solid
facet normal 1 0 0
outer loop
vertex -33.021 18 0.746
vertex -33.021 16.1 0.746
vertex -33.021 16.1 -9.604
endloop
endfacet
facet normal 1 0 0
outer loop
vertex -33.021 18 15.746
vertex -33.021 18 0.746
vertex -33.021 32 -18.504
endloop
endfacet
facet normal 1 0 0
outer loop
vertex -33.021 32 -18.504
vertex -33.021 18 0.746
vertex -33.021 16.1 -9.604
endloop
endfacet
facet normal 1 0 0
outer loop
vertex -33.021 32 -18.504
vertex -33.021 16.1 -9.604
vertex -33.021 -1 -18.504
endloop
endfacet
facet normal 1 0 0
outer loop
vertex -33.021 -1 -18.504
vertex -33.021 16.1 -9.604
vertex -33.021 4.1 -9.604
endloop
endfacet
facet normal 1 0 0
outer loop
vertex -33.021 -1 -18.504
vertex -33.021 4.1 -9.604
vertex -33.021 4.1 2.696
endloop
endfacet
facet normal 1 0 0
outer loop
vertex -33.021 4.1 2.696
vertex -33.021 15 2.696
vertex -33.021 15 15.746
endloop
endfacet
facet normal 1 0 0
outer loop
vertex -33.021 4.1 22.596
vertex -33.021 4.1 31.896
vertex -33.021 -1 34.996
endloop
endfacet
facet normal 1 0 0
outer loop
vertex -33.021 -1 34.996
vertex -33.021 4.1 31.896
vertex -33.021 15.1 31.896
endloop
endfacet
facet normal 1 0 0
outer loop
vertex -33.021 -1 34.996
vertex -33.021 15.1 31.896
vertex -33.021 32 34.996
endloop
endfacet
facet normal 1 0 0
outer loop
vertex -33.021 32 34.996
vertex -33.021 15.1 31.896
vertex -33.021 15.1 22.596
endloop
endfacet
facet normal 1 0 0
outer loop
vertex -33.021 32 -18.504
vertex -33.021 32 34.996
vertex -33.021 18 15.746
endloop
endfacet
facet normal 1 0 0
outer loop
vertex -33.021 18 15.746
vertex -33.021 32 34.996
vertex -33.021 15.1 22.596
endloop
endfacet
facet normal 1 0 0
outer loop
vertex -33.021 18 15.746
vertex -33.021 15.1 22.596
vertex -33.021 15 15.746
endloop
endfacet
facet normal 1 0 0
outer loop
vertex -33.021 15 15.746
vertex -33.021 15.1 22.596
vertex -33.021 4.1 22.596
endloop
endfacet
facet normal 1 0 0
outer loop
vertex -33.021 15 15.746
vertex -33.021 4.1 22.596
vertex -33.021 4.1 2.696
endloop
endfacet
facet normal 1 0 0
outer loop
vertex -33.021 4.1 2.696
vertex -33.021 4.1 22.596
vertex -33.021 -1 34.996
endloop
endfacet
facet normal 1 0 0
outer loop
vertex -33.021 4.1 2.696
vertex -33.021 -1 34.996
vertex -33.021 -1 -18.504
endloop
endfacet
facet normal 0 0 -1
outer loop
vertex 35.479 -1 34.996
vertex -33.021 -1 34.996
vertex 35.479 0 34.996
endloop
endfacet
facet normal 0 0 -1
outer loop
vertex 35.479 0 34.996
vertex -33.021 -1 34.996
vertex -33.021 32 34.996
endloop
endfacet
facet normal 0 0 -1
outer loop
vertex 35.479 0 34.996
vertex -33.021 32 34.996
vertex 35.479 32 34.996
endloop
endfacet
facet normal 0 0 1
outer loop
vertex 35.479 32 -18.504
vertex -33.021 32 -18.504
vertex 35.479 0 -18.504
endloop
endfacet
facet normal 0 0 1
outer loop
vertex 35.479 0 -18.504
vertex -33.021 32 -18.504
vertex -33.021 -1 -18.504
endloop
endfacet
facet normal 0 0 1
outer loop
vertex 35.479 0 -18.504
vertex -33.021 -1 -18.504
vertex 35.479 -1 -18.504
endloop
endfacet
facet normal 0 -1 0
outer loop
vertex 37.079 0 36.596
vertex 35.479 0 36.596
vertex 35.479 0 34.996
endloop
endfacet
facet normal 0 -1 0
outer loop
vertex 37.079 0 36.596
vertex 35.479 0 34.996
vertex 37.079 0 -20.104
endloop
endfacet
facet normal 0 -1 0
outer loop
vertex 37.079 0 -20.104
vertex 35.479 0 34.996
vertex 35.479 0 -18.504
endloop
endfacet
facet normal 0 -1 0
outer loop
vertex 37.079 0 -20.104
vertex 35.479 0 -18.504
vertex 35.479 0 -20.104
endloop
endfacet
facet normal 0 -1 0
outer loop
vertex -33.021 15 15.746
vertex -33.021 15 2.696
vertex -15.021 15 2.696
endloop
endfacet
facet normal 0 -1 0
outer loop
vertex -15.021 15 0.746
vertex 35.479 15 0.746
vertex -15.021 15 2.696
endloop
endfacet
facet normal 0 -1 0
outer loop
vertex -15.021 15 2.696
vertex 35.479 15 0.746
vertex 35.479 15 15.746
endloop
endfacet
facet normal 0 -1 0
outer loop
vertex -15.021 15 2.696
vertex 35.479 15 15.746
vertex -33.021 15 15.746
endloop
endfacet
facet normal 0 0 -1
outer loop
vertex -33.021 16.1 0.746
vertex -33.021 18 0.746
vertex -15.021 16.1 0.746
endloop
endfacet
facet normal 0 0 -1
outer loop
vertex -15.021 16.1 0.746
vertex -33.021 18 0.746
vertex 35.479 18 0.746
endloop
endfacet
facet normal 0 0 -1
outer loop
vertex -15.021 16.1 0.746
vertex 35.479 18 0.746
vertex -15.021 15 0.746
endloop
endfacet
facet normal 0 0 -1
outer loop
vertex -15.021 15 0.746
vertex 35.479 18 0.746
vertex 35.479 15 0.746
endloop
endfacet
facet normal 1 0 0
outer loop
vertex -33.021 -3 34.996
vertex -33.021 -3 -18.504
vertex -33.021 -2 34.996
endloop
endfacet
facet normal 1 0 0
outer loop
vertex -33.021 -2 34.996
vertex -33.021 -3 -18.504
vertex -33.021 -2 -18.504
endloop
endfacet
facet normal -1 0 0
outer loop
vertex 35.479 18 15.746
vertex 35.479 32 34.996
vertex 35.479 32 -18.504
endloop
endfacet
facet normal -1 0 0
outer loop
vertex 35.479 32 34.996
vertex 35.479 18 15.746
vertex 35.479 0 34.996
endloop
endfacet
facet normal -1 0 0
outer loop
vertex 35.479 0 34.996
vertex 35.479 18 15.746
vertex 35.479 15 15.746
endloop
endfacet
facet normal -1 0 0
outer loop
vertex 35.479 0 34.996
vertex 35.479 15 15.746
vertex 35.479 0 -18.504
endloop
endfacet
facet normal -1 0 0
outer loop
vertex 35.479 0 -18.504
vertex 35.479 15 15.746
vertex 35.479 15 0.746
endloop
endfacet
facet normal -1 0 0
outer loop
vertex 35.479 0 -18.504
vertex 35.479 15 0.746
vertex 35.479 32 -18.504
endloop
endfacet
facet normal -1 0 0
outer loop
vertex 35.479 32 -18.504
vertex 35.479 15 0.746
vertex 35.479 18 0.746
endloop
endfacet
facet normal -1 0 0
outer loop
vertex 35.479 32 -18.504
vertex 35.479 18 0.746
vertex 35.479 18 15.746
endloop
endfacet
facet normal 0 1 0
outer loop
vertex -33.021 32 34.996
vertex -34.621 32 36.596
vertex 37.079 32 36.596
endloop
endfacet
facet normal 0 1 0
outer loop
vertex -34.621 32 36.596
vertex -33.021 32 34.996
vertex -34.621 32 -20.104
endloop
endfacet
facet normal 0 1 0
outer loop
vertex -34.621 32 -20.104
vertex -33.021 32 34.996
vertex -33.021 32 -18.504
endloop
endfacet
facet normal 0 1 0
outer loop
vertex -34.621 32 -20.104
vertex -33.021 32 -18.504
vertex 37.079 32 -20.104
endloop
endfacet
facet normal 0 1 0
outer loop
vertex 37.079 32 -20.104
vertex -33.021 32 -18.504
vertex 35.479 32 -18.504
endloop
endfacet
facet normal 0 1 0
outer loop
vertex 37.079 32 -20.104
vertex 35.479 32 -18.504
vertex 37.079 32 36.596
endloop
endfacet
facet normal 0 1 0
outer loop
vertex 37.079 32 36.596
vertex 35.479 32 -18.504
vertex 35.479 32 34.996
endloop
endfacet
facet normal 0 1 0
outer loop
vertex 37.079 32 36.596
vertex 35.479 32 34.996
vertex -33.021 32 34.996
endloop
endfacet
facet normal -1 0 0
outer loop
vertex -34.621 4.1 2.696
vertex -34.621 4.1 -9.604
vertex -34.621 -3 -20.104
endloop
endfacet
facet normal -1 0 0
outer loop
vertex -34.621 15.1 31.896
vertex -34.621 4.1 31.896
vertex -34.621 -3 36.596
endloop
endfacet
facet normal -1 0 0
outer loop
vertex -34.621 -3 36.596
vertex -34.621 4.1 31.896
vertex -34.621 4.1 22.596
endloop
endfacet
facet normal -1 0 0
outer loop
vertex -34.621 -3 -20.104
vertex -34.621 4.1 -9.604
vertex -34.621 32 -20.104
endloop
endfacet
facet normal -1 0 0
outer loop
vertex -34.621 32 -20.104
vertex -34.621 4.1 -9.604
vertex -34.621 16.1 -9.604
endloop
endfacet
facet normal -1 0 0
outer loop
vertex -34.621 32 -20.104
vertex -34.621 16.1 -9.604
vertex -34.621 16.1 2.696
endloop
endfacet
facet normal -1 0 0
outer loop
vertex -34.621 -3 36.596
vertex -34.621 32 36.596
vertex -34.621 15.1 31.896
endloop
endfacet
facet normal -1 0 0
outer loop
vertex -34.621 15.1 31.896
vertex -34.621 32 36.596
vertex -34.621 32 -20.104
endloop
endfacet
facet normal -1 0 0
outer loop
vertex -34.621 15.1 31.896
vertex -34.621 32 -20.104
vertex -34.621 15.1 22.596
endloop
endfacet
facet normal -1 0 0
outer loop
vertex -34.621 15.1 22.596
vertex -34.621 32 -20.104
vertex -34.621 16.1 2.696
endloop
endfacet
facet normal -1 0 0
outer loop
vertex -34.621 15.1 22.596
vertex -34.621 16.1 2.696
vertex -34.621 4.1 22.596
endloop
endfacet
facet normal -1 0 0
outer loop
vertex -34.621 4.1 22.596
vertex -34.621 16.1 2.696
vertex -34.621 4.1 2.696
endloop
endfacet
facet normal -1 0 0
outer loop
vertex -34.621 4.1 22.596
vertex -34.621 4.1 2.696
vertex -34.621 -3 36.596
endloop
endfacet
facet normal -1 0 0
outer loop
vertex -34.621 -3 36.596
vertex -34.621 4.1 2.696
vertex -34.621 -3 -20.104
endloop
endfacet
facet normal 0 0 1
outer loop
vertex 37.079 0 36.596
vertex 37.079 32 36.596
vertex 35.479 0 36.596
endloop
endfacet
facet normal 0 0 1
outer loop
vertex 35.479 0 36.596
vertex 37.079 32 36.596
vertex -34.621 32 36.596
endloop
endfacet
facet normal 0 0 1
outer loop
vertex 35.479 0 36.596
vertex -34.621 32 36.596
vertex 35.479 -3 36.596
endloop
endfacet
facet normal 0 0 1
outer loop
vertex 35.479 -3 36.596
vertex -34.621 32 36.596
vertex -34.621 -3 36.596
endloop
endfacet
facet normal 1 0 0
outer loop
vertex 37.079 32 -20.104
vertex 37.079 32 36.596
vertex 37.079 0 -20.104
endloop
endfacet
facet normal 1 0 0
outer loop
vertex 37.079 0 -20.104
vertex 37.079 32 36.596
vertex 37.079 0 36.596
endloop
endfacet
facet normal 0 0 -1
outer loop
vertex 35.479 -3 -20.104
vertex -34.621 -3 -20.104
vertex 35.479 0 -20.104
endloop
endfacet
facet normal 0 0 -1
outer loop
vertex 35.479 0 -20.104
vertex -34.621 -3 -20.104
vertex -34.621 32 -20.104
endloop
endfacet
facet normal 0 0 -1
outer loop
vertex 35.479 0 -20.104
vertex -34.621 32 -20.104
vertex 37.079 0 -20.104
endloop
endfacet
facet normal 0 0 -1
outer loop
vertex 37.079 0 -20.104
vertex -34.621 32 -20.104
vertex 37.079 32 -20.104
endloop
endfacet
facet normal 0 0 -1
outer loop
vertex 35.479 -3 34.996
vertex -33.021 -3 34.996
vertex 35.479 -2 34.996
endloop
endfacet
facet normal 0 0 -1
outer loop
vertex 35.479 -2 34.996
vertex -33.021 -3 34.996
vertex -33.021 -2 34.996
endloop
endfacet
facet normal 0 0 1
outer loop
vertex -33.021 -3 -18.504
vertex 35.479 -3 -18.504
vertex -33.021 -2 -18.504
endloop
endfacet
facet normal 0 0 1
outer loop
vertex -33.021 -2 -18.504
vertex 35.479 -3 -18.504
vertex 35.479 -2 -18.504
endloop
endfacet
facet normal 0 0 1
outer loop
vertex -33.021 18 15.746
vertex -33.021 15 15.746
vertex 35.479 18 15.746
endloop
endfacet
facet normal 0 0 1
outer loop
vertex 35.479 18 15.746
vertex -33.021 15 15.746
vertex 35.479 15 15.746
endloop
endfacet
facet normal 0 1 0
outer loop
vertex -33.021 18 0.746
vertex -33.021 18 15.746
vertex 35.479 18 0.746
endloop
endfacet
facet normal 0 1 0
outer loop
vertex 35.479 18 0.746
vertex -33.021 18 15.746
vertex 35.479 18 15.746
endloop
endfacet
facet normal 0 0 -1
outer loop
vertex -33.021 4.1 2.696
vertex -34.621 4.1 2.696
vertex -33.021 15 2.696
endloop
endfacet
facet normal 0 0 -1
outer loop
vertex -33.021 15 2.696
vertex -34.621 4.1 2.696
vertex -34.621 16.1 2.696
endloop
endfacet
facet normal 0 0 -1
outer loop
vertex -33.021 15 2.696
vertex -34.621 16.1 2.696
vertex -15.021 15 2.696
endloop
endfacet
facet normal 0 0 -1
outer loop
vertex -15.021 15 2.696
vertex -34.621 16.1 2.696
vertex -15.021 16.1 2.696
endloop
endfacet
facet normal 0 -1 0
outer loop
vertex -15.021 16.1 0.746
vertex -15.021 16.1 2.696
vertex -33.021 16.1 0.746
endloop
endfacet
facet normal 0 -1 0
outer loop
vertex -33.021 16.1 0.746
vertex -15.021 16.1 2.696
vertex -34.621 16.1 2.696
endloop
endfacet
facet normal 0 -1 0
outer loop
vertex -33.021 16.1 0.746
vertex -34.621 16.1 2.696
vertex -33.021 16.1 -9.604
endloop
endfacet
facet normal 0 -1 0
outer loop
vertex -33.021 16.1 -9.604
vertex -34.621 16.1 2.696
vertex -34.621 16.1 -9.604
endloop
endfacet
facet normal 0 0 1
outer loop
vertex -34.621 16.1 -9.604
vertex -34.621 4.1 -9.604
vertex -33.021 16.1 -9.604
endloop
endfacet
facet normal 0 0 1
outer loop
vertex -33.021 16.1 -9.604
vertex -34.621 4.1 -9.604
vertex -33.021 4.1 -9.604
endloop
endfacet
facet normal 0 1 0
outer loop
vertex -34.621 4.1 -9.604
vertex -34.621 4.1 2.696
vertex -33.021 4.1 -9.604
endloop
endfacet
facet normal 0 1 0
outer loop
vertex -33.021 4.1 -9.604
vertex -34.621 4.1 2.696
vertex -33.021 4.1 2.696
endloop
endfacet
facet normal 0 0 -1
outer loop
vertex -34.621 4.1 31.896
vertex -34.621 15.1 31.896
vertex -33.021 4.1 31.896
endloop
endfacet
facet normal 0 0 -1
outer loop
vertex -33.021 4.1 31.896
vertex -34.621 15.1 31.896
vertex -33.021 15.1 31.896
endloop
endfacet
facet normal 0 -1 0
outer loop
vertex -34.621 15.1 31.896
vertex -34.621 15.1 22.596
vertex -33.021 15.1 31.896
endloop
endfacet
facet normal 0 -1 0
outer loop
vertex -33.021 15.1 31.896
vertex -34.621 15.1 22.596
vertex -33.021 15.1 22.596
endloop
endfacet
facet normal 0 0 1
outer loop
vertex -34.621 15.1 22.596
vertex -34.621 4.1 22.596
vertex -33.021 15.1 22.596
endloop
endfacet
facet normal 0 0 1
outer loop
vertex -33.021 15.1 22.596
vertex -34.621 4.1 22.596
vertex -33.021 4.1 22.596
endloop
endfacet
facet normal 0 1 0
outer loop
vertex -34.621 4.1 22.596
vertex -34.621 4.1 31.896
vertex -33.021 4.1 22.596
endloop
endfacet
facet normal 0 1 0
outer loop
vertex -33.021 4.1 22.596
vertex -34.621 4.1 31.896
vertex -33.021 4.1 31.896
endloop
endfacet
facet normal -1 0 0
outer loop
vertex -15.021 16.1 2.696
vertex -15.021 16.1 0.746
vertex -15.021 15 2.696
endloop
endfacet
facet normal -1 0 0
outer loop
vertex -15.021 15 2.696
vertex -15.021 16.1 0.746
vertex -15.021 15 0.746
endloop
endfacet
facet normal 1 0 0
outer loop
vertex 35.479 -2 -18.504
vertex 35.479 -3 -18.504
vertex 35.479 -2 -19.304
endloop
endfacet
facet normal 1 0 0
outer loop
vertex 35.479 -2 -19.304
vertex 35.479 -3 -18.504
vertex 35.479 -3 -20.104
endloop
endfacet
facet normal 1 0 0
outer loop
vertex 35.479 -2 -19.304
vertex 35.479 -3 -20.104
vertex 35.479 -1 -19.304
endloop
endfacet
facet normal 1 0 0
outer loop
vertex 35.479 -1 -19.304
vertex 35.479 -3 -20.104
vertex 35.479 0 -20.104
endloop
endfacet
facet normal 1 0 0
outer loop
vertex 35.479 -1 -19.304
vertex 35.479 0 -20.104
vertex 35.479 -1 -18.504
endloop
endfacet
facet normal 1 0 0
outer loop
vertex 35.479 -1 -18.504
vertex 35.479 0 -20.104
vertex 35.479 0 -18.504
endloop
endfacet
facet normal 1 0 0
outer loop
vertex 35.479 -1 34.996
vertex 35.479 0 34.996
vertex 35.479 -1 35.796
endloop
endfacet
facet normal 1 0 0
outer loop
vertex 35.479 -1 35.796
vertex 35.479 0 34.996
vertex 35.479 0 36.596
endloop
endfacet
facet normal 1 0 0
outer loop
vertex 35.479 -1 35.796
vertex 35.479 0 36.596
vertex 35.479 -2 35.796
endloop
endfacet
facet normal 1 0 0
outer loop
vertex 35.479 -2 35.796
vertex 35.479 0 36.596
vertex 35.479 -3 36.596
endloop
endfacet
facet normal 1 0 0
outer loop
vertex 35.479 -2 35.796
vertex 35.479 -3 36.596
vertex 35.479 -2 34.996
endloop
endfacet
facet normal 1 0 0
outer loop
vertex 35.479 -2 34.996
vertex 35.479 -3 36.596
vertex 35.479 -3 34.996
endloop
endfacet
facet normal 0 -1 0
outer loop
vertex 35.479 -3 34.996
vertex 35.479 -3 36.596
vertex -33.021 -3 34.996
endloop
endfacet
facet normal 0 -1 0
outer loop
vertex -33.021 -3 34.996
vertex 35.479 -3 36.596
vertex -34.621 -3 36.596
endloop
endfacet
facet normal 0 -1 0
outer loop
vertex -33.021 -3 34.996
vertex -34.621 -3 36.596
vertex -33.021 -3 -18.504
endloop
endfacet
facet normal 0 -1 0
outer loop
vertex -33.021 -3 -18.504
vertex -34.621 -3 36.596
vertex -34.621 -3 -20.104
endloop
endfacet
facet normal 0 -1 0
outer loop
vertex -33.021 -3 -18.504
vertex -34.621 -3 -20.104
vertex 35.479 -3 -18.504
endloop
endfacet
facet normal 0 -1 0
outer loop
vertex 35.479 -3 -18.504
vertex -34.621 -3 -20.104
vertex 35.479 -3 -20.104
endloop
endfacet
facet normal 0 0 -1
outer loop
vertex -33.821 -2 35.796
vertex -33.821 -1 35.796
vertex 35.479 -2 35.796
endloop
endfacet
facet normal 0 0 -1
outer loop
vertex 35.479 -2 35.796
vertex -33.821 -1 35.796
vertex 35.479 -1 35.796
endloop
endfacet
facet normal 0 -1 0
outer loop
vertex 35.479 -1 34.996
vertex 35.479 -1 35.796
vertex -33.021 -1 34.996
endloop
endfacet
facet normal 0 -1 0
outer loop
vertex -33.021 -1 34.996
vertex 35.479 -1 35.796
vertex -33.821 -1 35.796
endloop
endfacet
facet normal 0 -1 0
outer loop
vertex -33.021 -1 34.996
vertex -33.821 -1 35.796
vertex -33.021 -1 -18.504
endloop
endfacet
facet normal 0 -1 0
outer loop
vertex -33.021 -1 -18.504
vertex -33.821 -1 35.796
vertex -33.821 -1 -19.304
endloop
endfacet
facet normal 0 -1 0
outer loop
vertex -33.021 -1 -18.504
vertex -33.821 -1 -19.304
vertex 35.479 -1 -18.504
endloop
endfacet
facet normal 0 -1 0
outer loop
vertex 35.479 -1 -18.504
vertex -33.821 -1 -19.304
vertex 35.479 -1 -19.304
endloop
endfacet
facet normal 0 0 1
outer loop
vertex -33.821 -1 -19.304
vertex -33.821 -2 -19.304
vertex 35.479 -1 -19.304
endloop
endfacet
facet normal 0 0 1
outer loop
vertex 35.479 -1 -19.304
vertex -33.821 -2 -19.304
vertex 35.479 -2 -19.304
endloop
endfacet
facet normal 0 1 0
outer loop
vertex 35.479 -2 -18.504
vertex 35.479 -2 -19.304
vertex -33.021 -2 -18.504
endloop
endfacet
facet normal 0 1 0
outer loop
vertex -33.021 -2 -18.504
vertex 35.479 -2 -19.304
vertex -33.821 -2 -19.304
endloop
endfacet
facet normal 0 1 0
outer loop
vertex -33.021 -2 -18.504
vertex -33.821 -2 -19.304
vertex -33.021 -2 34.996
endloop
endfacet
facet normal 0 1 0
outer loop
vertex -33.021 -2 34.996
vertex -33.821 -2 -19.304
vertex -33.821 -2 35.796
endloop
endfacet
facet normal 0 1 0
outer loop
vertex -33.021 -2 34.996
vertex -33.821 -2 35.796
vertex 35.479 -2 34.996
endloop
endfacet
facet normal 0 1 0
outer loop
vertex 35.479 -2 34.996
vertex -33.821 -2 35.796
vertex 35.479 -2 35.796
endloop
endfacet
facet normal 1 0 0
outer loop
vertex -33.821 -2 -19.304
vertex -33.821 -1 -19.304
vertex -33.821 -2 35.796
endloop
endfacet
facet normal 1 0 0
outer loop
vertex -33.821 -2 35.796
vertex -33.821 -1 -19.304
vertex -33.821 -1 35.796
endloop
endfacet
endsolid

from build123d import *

# Parameters (mm, degrees)
SKETCH1_W           = 71.7
SKETCH1_H           = 56.7
SKETCH1_W_2         = 68.5
SKETCH1_H_2         = 53.5
BOSS_EXTRUDE1_DEPTH = 32
SKETCH2_W           = 15
SKETCH2_H           = 3
BOSS_EXTRUDE2_DEPTH = 70
SKETCH3_W           = 12.3
SKETCH3_H           = 12
SKETCH3_W_2         = 9.3
SKETCH3_H_2         = 11
CUT_EXTRUDE1_DEPTH  = 1.6
SKETCH3_2_W         = 12.3
SKETCH3_2_H         = 12
SKETCH3_2_W_2       = 9.3
SKETCH3_2_H_2       = 11
CUT_EXTRUDE2_DEPTH  = 18
BOSS_EXTRUDE3_DEPTH = 3
SKETCH5_W           = 55.1
SKETCH5_H           = 1
CUT_EXTRUDE3_DEPTH  = 69.3


with BuildPart() as part:
    # Sketch1 → Boss-Extrude1 (new body)
    with BuildSketch(Plane(origin=(0, 0, 0), x_dir=(1, 0, 0), z_dir=(0, 1, 0))):
        with Locations((1.229030624, -8.245503616)):
            Rectangle(SKETCH1_W, SKETCH1_H)
        with Locations((1.229030624, -8.245503616)):
            Rectangle(SKETCH1_W_2, SKETCH1_H_2, mode=Mode.SUBTRACT)
    extrude(amount=BOSS_EXTRUDE1_DEPTH)

    # Sketch2 → Boss-Extrude2 (add)
    with BuildSketch(Plane(origin=(-33.020969376, 0, 0), x_dir=(0, 0, -1), z_dir=(1, 0, 0))):
        with Locations((-8.245503616, 16.5)):
            Rectangle(SKETCH2_W, SKETCH2_H)
    extrude(amount=BOSS_EXTRUDE2_DEPTH)

    # Sketch3 → Cut-Extrude1 (cut)
    with BuildSketch(Plane(origin=(-33.020969376, 0, 0), x_dir=(0, 0, -1), z_dir=(1, 0, 0))):
        with Locations((3.454496384, 10.1)):
            Rectangle(SKETCH3_W, SKETCH3_H)
        with Locations((-27.245503616, 9.6)):
            Rectangle(SKETCH3_W_2, SKETCH3_H_2)
    extrude(amount=-CUT_EXTRUDE1_DEPTH, mode=Mode.SUBTRACT)

    # Sketch3<2> → Cut-Extrude2 (cut)
    with BuildSketch(Plane(origin=(-33.020969376, 0, 0), x_dir=(0, 0, -1), z_dir=(1, 0, 0))):
        with Locations((3.454496384, 10.1)):
            Rectangle(SKETCH3_2_W, SKETCH3_2_H)
        with Locations((-27.245503616, 9.6)):
            Rectangle(SKETCH3_2_W_2, SKETCH3_2_H_2)
    extrude(amount=CUT_EXTRUDE2_DEPTH, mode=Mode.SUBTRACT)

    # Sketch4 → Boss-Extrude3 (add)
    with BuildSketch(Plane.XZ):
        Polygon((35.479030624, 36.595503616), (35.479030624, 34.995503616), (-33.020969376, 34.995503616), (-33.020969376, -18.504496384), (35.479030624, -18.504496384), (35.479030624, -20.104496384), (-34.620969376, -20.104496384), (-34.620969376, 36.595503616), align=None)
    extrude(amount=BOSS_EXTRUDE3_DEPTH)

    # Sketch5 → Cut-Extrude3 (cut)
    with BuildSketch(Plane(origin=(35.479030624, 0, 0), x_dir=(0, 0, -1), z_dir=(1, 0, 0))):
        with Locations((-8.245503616, -1.5)):
            Rectangle(SKETCH5_W, SKETCH5_H)
    extrude(amount=-CUT_EXTRUDE3_DEPTH, mode=Mode.SUBTRACT)


solid = part.part
